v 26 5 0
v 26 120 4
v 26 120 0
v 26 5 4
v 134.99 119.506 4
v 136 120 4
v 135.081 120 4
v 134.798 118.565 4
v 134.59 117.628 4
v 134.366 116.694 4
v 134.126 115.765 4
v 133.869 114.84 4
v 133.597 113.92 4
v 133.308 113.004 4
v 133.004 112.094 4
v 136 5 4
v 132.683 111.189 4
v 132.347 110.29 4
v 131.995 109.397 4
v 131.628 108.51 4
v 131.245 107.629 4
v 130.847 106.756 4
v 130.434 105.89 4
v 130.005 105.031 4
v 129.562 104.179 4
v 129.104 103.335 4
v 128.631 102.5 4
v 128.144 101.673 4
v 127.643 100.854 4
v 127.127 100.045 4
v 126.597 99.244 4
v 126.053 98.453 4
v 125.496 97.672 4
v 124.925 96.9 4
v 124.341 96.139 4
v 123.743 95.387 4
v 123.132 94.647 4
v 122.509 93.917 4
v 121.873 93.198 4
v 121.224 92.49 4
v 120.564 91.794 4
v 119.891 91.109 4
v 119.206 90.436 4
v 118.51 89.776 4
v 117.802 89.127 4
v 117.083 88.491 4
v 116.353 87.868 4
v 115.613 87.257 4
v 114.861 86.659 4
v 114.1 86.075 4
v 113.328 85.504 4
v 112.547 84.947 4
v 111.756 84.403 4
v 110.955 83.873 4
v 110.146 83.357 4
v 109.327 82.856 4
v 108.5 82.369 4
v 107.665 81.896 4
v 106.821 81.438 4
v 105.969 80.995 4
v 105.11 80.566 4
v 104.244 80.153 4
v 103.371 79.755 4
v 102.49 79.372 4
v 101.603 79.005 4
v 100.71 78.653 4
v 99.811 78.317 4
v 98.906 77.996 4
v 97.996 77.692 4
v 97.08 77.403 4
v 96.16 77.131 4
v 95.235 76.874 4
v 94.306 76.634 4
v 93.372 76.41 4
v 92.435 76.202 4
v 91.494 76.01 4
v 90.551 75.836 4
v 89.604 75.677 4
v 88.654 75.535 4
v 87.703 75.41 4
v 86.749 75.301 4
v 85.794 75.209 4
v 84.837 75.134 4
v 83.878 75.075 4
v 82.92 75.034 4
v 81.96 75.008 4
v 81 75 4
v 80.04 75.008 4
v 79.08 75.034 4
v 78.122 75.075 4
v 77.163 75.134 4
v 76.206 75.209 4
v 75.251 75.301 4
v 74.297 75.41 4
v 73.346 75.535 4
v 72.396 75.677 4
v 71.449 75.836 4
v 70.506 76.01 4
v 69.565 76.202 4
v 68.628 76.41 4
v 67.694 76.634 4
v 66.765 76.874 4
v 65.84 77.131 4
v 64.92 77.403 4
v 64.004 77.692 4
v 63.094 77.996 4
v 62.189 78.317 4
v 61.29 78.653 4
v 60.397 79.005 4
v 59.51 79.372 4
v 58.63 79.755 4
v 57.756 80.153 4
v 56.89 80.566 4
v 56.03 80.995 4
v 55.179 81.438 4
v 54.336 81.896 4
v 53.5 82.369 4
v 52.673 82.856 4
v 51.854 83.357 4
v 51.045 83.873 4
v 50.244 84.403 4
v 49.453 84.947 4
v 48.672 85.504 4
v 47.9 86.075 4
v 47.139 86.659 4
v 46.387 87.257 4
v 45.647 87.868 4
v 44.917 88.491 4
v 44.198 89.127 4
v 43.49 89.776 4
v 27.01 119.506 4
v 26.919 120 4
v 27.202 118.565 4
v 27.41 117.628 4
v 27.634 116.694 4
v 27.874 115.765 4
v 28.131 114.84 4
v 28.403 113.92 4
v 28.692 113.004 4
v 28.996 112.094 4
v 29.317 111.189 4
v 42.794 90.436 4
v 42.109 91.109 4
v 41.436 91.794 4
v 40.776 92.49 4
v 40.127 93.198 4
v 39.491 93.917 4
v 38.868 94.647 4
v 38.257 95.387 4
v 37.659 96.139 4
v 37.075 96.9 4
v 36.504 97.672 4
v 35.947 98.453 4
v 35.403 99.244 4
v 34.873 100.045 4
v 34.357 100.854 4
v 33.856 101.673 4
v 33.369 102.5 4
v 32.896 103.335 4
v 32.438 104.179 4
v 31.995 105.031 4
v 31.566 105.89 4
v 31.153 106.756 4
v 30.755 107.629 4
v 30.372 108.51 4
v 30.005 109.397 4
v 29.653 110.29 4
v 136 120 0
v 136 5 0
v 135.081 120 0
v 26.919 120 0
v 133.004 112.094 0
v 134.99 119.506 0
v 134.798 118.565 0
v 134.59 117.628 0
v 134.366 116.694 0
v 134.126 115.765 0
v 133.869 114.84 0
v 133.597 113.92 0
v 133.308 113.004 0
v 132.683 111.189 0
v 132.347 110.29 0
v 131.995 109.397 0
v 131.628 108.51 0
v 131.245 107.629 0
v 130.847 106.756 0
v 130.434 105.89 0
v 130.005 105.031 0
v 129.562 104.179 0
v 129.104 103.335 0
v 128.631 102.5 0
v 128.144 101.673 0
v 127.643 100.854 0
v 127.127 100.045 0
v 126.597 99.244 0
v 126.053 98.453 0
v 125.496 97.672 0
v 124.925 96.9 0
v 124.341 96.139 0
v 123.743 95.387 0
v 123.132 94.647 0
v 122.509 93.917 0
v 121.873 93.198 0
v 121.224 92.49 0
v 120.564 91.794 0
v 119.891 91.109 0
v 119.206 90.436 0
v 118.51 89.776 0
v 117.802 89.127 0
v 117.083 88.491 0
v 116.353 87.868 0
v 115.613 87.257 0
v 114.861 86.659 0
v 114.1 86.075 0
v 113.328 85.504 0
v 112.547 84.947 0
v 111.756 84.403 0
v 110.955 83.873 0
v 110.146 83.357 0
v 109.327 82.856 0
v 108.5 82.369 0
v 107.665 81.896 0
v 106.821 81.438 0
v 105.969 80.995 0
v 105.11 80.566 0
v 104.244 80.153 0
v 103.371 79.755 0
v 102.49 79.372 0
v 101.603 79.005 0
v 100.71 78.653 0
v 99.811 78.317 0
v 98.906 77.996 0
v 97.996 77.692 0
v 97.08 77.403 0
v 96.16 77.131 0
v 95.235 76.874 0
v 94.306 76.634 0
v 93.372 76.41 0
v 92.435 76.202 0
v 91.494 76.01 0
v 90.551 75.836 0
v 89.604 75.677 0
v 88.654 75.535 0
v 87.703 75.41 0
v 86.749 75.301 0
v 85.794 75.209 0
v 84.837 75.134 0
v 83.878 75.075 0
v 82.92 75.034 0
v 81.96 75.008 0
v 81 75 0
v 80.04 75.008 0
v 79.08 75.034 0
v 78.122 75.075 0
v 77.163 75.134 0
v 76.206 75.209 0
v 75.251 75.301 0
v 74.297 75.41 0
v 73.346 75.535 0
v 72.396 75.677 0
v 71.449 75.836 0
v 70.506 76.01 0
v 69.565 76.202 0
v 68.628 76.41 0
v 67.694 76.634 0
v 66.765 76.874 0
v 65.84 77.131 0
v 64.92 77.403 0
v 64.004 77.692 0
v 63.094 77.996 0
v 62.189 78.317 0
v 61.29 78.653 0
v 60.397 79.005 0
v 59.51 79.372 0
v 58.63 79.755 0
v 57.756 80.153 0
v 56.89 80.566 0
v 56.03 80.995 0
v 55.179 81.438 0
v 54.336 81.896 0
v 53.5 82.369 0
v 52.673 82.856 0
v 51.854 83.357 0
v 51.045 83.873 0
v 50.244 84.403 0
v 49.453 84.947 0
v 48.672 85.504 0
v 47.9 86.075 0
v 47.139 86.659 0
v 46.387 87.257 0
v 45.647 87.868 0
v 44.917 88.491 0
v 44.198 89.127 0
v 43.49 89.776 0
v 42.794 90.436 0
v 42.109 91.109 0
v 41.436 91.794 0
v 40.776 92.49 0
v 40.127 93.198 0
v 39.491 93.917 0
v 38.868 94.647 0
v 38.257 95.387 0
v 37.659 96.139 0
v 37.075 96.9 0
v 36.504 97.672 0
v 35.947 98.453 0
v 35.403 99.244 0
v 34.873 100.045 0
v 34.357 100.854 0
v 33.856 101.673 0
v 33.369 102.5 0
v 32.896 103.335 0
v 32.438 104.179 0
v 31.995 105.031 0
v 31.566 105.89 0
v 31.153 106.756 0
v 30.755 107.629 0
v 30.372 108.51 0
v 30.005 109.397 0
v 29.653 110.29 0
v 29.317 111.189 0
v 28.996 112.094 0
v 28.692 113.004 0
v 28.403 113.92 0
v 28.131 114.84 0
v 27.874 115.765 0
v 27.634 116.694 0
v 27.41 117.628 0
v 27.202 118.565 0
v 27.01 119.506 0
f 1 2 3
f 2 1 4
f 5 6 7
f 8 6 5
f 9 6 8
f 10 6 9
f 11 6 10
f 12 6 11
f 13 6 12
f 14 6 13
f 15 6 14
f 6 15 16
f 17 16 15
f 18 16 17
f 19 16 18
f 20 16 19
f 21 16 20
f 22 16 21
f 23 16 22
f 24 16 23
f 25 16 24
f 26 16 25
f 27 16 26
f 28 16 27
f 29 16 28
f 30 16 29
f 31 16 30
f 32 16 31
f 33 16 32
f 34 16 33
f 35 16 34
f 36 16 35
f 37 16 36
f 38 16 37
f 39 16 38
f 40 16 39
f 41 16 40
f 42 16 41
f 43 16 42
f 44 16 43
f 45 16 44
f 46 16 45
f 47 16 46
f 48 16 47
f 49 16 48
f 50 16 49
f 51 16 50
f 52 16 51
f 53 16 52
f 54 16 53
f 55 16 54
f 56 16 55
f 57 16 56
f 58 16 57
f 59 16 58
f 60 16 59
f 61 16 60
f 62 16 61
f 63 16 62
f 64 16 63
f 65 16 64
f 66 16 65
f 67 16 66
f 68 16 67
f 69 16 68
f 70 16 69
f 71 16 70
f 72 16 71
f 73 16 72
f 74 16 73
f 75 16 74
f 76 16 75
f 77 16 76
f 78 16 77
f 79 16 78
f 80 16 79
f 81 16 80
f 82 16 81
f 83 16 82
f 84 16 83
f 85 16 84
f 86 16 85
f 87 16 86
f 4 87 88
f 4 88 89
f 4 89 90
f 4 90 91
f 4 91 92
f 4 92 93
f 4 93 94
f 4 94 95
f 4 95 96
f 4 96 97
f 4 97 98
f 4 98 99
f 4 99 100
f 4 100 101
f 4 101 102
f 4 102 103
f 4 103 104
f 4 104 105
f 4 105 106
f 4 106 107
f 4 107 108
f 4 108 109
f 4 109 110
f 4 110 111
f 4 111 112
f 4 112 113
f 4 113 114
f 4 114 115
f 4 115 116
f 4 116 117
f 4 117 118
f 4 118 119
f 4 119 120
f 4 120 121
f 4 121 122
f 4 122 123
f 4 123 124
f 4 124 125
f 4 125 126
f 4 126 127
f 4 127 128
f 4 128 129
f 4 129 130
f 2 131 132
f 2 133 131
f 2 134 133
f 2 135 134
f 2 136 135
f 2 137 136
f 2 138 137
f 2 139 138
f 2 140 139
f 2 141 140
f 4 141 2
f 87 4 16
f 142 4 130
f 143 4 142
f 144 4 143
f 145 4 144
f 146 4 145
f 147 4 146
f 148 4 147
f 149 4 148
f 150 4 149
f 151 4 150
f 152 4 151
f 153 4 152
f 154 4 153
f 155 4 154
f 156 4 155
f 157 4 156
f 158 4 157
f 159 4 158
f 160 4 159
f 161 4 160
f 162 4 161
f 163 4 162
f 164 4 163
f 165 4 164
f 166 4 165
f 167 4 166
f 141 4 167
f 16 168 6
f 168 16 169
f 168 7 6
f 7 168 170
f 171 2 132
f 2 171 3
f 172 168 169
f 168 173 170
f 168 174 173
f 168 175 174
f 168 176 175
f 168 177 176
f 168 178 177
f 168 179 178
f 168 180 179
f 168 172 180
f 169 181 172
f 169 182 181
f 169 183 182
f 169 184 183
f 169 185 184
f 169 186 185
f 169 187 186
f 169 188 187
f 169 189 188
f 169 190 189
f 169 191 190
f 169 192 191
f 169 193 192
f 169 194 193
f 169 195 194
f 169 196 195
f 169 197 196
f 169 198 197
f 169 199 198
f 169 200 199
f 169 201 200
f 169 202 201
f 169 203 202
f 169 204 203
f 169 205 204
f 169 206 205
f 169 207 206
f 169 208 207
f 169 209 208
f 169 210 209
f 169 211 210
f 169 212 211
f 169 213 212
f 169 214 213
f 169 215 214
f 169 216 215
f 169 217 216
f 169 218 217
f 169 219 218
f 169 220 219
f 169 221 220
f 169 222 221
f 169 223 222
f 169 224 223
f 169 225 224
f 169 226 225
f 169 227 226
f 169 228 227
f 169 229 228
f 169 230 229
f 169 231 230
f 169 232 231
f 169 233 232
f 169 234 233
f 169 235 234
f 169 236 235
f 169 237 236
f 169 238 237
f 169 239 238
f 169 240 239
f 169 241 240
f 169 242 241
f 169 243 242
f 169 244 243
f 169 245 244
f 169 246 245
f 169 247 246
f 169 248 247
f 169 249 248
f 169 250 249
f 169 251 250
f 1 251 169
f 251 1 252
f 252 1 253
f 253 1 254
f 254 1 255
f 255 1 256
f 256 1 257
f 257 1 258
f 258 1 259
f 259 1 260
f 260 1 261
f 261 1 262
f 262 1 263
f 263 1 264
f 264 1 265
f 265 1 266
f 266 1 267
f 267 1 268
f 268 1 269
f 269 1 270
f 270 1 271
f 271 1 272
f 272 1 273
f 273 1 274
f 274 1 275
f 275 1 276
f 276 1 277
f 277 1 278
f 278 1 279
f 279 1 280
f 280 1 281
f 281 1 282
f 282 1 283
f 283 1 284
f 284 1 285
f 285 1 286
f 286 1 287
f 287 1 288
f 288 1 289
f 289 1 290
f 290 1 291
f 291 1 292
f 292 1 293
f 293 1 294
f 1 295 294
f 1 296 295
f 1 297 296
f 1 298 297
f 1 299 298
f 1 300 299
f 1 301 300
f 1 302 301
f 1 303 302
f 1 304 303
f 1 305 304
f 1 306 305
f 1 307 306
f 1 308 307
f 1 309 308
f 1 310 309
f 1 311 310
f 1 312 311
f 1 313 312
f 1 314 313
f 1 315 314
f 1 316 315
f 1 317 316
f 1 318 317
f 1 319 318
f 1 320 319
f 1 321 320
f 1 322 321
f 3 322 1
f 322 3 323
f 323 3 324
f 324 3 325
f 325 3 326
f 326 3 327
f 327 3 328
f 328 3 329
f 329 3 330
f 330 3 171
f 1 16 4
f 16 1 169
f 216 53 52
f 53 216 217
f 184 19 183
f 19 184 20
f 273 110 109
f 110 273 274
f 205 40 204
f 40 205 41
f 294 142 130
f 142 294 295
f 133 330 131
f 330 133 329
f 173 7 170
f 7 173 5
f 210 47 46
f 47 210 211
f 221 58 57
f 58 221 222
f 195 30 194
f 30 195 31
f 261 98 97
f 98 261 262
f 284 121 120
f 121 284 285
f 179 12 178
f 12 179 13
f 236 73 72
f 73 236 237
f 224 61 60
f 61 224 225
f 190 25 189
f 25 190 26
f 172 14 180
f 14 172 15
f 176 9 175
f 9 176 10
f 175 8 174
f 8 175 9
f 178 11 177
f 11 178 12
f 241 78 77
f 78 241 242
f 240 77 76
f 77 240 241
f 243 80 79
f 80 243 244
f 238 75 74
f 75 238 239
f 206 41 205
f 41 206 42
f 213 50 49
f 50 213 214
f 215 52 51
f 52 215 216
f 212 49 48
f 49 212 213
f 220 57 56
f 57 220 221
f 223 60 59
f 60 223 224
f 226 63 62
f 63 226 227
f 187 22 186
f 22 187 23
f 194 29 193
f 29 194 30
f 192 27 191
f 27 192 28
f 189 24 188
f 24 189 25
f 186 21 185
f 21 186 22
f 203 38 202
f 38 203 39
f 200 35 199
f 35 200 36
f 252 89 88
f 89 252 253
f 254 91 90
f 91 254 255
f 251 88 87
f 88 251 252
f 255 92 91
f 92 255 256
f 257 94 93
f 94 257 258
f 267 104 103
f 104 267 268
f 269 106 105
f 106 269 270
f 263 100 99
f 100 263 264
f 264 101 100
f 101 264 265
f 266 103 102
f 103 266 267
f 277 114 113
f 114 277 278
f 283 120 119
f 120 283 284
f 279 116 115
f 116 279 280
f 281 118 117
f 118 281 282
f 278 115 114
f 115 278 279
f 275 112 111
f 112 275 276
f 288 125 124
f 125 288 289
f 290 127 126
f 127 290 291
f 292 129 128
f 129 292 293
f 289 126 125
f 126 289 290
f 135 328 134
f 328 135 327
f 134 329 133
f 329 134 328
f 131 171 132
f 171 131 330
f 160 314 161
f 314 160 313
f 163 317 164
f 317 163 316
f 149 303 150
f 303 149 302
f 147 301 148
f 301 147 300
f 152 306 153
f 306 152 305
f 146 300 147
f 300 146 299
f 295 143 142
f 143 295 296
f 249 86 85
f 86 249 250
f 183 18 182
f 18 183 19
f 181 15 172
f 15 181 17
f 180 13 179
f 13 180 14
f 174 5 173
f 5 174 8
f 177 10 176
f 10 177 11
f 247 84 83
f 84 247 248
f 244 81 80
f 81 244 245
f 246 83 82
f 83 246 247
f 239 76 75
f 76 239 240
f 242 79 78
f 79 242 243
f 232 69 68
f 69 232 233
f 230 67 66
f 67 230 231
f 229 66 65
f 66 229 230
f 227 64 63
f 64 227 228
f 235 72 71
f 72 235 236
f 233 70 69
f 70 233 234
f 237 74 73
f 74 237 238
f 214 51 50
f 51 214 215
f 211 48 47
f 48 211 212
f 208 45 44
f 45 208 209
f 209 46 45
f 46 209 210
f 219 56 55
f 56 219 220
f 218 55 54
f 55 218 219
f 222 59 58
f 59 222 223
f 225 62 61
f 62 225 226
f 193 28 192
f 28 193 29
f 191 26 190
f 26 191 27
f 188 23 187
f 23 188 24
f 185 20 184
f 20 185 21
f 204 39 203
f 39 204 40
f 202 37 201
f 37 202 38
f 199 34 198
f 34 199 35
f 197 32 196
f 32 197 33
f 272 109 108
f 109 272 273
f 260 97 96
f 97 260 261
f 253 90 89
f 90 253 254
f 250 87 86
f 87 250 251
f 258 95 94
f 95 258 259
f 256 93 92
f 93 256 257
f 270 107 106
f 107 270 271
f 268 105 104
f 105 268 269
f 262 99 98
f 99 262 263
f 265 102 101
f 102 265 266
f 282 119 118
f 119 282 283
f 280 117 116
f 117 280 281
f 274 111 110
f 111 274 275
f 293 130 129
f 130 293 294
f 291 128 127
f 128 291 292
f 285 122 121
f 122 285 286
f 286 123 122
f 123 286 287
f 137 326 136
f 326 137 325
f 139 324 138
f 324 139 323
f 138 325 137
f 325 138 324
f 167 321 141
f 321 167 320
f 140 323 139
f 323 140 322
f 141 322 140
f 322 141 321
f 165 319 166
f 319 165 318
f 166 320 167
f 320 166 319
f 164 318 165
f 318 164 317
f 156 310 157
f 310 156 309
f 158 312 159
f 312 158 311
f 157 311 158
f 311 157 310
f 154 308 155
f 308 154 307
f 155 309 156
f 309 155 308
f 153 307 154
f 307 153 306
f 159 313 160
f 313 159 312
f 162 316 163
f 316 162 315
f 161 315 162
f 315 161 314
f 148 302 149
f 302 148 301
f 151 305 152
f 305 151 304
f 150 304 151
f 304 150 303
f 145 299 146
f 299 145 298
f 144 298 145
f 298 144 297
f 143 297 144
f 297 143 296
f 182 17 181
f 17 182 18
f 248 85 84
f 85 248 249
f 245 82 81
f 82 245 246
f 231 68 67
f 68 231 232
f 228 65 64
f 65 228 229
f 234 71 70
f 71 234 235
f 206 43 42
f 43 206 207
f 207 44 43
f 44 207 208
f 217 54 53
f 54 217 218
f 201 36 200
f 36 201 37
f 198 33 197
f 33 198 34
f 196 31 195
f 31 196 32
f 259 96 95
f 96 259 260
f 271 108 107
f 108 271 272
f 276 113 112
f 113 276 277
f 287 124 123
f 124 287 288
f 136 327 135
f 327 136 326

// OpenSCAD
difference() {
translate([26,5,0])cube([110, 115, 4]);
    translate([81,130,0])cylinder(d=110, h= 40, $fn=360);
}
